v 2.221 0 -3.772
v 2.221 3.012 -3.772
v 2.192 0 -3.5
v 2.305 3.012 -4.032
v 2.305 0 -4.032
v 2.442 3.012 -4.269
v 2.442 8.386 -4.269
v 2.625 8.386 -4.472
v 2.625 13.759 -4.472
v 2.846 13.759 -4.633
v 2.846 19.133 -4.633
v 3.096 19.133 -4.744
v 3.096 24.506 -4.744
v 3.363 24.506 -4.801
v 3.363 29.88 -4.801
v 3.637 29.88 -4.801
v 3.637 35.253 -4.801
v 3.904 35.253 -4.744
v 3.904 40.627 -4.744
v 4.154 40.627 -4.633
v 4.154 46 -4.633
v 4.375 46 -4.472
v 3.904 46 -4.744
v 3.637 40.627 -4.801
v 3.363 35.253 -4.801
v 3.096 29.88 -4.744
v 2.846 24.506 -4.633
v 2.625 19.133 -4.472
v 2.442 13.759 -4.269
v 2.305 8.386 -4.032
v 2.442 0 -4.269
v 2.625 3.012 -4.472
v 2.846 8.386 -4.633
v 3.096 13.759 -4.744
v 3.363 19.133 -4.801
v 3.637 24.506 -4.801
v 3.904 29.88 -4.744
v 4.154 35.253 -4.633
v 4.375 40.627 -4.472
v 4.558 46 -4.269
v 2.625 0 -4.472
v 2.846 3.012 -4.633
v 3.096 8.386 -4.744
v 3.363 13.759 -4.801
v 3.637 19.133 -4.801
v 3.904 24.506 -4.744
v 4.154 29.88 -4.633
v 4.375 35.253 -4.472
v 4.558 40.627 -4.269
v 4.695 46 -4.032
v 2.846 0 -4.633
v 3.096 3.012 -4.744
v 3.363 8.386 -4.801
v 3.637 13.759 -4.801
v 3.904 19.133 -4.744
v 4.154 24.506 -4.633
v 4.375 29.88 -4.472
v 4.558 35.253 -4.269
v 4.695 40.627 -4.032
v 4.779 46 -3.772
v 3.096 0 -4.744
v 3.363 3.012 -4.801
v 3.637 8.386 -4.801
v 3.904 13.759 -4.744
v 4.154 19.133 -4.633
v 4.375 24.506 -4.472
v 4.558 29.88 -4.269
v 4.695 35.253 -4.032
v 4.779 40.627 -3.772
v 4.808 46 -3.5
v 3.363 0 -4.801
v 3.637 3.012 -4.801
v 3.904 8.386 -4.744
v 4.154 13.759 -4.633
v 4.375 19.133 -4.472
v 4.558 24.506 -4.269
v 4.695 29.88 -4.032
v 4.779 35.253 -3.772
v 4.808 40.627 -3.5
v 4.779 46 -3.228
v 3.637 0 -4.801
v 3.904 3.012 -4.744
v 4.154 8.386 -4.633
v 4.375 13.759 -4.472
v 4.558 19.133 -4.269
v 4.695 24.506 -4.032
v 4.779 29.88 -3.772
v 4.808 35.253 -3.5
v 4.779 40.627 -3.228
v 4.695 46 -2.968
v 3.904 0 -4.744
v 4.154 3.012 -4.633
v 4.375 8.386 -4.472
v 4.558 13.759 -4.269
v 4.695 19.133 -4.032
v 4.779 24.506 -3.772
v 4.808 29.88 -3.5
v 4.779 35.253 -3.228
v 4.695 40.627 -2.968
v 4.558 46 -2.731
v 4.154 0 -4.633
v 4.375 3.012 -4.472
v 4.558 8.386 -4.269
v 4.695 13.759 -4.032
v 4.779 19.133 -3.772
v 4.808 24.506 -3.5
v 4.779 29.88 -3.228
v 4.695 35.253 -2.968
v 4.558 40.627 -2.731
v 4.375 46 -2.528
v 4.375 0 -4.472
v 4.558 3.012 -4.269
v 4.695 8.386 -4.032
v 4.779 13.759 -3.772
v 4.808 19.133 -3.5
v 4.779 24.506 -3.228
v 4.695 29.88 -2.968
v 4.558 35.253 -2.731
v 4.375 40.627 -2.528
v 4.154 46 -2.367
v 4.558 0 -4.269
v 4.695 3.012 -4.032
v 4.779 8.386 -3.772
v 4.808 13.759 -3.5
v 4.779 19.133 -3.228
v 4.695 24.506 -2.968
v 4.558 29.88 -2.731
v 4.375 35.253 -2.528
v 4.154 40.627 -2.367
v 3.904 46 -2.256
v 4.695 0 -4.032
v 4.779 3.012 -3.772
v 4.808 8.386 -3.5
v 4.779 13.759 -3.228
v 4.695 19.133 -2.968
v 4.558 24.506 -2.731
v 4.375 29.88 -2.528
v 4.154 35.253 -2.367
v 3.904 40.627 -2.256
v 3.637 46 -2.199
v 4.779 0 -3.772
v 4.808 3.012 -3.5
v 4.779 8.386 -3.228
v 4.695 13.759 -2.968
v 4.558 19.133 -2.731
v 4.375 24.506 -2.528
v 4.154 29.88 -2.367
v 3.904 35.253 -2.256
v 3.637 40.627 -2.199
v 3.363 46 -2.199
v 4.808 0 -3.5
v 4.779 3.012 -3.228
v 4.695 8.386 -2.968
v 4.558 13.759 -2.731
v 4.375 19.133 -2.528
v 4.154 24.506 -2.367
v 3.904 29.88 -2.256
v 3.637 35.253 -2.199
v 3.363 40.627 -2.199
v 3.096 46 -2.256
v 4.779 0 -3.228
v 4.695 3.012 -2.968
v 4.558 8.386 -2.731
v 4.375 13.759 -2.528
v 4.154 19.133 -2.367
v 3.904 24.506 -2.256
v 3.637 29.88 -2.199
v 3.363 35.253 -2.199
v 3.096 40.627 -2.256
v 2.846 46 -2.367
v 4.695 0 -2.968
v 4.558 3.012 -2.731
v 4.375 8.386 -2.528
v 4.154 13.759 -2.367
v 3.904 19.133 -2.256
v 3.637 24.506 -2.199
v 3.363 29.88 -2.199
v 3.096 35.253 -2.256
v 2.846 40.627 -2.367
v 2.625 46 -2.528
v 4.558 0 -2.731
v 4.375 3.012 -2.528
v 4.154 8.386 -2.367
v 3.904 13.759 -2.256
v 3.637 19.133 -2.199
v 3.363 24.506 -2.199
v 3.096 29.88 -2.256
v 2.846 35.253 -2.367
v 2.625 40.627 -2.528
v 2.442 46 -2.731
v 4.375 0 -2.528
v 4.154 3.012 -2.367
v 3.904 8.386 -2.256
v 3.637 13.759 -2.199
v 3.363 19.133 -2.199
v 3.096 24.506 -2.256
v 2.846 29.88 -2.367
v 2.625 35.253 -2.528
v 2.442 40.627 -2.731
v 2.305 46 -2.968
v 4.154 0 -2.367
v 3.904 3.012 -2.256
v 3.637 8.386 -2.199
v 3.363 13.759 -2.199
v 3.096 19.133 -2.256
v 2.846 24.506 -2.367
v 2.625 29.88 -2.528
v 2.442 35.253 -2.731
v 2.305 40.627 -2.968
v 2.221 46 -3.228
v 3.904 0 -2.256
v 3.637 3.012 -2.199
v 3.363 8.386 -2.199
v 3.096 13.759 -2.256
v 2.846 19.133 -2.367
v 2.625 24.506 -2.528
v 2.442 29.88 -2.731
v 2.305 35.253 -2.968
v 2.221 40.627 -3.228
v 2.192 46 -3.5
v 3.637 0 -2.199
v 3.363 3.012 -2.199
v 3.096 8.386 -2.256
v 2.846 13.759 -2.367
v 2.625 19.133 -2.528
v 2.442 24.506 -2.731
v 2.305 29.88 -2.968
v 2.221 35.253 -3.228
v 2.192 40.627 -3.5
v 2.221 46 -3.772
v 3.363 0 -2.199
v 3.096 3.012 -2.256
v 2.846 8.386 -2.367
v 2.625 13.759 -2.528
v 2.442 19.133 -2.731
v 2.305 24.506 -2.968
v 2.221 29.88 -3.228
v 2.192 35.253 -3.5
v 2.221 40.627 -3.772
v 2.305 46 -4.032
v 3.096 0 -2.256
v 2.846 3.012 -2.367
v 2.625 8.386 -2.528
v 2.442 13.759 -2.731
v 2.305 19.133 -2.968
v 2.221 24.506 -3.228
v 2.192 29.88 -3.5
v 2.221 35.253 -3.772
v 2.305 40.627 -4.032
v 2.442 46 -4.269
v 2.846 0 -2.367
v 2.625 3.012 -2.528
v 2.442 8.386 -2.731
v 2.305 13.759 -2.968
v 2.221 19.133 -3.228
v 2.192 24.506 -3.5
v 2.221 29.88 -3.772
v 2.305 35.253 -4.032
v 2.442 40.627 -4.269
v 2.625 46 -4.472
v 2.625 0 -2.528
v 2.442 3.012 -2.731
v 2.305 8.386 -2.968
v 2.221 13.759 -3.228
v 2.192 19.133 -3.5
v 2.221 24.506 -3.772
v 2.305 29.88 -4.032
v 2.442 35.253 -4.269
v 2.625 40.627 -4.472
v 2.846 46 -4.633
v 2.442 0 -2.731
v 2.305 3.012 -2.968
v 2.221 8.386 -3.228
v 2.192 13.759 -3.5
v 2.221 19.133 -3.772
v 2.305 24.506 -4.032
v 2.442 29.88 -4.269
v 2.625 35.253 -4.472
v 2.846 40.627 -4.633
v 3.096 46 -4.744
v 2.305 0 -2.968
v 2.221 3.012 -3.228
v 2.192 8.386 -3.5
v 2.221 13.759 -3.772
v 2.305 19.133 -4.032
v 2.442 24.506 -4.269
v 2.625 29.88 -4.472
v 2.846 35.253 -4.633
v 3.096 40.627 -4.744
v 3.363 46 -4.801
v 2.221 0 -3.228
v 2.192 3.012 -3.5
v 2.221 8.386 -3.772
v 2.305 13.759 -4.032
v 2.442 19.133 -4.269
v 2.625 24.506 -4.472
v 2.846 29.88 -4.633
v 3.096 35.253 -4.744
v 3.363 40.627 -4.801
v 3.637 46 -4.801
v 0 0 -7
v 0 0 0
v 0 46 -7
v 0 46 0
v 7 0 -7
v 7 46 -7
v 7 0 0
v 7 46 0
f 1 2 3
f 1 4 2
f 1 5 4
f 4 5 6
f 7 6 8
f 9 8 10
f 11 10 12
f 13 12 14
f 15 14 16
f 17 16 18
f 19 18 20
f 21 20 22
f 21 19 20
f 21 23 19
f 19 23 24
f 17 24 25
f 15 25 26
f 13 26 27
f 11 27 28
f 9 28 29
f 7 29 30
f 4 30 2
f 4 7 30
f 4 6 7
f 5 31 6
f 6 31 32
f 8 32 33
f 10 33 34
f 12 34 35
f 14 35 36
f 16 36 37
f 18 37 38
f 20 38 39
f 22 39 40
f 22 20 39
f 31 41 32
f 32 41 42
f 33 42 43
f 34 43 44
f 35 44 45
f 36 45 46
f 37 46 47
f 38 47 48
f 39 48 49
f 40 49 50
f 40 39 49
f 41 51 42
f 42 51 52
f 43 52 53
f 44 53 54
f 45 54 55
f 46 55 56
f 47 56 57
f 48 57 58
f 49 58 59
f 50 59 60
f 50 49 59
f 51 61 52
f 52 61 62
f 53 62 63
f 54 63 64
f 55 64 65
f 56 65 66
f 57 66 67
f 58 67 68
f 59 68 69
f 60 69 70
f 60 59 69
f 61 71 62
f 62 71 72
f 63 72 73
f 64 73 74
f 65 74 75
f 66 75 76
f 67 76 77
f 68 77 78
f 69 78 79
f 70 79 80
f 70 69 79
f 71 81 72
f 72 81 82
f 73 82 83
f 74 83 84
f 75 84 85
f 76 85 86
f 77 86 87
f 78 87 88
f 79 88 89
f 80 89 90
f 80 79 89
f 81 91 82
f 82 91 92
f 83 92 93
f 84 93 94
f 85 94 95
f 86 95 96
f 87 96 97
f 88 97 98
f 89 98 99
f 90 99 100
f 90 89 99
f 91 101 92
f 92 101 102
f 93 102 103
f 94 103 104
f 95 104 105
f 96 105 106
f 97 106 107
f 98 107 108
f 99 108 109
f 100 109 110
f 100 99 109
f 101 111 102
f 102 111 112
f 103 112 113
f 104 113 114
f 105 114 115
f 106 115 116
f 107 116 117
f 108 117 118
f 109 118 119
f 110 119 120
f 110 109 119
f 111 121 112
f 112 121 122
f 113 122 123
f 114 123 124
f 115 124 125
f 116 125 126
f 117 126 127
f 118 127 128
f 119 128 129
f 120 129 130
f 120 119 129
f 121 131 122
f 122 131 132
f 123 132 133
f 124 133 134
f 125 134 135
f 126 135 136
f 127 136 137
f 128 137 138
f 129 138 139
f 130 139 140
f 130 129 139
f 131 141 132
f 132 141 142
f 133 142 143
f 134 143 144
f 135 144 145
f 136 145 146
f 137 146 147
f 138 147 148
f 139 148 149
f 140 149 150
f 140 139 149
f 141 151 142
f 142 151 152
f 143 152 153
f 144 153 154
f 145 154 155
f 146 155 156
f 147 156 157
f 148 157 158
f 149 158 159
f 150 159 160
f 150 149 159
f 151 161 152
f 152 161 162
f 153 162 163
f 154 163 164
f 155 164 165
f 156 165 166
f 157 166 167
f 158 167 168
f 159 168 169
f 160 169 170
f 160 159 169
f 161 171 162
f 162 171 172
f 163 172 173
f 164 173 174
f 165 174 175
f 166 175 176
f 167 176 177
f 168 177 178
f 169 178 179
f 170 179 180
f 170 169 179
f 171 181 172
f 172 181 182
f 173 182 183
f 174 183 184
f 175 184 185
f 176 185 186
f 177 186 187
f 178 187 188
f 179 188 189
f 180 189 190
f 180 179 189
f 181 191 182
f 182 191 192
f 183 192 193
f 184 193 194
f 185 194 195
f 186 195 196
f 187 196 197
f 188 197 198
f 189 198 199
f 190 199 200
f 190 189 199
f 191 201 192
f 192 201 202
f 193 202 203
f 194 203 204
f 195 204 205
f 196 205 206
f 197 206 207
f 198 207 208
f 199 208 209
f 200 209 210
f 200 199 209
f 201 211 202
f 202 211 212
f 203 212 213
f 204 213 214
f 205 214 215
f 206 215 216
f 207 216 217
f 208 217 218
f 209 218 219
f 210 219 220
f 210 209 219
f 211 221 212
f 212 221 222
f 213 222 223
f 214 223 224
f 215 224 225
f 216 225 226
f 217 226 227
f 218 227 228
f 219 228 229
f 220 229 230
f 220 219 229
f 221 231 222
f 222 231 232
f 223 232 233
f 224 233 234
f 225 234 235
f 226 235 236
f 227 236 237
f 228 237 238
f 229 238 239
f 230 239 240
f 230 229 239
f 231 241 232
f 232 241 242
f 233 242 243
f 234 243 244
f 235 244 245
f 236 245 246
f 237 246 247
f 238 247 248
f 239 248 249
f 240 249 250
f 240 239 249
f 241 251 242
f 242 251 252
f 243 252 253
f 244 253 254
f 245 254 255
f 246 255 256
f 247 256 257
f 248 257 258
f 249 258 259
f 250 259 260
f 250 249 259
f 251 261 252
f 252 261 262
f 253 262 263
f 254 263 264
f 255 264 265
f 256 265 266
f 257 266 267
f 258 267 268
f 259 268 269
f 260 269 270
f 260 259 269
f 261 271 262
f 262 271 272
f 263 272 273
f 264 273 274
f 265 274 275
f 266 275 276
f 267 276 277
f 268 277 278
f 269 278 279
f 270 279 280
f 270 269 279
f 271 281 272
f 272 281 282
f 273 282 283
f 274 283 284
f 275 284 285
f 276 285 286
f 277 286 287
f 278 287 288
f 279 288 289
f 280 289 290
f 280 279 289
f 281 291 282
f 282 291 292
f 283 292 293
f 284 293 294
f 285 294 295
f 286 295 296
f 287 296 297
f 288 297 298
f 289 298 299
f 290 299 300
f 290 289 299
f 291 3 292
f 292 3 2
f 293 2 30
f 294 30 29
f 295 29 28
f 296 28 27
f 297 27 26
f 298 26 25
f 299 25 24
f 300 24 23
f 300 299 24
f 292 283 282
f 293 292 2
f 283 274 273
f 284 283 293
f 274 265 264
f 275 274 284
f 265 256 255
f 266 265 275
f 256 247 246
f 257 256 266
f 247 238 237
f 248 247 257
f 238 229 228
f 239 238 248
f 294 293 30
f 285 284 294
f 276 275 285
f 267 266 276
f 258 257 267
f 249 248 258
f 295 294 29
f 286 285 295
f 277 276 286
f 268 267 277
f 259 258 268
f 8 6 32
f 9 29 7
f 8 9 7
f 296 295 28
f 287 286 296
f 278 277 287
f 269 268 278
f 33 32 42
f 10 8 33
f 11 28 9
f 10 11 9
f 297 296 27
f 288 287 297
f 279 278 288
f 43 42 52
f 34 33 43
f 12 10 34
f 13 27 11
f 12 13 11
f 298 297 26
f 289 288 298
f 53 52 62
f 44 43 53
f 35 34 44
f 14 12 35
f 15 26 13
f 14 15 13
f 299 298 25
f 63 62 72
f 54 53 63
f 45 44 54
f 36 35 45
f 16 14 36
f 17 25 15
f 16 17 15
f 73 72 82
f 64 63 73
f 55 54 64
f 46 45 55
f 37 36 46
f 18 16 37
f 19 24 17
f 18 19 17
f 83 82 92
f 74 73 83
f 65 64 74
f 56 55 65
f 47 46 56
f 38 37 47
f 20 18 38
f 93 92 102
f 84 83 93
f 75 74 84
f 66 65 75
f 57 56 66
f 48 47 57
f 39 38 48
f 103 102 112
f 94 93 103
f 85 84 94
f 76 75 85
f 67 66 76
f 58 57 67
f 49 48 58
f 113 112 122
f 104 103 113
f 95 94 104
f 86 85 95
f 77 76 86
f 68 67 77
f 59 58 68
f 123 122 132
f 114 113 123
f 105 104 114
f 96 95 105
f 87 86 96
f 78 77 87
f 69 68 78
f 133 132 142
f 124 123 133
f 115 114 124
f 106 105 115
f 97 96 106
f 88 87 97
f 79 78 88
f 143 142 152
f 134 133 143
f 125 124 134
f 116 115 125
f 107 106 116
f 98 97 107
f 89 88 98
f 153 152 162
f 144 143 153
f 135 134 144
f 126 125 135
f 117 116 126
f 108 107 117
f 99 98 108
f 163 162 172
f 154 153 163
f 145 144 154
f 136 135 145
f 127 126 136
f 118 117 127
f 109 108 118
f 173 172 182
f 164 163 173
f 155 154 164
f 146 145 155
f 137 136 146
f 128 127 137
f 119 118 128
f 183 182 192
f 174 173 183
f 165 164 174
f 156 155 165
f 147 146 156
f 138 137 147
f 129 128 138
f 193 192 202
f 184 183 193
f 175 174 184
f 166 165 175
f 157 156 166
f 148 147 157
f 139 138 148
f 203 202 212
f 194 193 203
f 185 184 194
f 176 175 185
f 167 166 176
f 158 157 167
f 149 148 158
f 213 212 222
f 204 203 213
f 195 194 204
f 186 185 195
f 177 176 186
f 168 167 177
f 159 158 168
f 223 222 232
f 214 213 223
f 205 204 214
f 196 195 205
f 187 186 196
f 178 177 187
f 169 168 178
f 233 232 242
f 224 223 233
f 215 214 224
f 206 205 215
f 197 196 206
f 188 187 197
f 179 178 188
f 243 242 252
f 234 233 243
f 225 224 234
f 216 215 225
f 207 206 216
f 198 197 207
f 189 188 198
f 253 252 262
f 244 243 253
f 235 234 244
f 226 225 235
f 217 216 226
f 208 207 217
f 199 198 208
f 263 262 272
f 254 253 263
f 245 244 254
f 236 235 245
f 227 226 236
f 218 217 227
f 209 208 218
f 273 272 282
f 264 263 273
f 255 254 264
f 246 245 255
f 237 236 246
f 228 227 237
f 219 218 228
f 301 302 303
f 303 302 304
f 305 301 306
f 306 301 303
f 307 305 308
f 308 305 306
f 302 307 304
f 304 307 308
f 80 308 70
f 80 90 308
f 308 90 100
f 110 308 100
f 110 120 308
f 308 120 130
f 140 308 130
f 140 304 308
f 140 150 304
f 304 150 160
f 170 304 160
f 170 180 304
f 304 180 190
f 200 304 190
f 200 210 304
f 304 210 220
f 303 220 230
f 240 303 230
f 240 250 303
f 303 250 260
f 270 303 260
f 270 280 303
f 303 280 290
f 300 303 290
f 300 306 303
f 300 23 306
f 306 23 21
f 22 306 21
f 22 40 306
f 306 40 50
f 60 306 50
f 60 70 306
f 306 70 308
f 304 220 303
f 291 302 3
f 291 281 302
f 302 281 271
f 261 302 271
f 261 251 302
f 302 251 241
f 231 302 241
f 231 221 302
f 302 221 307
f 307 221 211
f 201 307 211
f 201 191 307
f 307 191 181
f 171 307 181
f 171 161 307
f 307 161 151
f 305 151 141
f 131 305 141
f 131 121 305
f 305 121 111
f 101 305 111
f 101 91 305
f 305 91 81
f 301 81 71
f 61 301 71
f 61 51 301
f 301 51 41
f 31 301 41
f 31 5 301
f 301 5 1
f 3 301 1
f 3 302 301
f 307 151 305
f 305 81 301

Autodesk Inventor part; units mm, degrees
ref_plane "YZ Plane" through (0, 0, 0) normal (1, 0, 0) x (0, 1, 0)
ref_plane "XZ Plane" through (0, 0, 0) normal (0, 1, 0) x (-1, 0, 0)
ref_plane "XY Plane" through (0, 0, 0) normal (0, 0, 1) x (1, 0, 0)
sketch "Sketch1" plane through (0, 0, 0) normal (0, 1, 0) x (-1, 0, 0)
  line L0 (0, 0) -> (-7, 0)
  line L1 (-7, 0) -> (-7, -7)
  line L2 (-7, -7) -> (0, -7)
  line L3 (0, -7) -> (0, 0)
  dimension "d0" = 7
  dimension "d1" = 7
extrude "Extrusion1" add sketch "Sketch1" along normal blind 46
sketch "Sketch2" plane through (0, 46, 0) normal (0, 1, 0) x (1, 0, 0)
  line L0 (0, 7) -> (0, 0) projected
  line L1 (0, 3.5) -> (7, 3.5)
  line L2 (7, 0) -> (7, 7) projected
  line L3 (7, 7) -> (0, 7) projected
  line L4 (3.5, 7) -> (3.5, 0)
  line L5 (0, 0) -> (7, 0) projected
  point P0 (3.5, 3.5)
hole "Hole1" at (3.5, 46, -3.5) direction (0, -1, 0) diameter 2.616 end through all
properties part number "Spacer" material "ABS Plastic"
